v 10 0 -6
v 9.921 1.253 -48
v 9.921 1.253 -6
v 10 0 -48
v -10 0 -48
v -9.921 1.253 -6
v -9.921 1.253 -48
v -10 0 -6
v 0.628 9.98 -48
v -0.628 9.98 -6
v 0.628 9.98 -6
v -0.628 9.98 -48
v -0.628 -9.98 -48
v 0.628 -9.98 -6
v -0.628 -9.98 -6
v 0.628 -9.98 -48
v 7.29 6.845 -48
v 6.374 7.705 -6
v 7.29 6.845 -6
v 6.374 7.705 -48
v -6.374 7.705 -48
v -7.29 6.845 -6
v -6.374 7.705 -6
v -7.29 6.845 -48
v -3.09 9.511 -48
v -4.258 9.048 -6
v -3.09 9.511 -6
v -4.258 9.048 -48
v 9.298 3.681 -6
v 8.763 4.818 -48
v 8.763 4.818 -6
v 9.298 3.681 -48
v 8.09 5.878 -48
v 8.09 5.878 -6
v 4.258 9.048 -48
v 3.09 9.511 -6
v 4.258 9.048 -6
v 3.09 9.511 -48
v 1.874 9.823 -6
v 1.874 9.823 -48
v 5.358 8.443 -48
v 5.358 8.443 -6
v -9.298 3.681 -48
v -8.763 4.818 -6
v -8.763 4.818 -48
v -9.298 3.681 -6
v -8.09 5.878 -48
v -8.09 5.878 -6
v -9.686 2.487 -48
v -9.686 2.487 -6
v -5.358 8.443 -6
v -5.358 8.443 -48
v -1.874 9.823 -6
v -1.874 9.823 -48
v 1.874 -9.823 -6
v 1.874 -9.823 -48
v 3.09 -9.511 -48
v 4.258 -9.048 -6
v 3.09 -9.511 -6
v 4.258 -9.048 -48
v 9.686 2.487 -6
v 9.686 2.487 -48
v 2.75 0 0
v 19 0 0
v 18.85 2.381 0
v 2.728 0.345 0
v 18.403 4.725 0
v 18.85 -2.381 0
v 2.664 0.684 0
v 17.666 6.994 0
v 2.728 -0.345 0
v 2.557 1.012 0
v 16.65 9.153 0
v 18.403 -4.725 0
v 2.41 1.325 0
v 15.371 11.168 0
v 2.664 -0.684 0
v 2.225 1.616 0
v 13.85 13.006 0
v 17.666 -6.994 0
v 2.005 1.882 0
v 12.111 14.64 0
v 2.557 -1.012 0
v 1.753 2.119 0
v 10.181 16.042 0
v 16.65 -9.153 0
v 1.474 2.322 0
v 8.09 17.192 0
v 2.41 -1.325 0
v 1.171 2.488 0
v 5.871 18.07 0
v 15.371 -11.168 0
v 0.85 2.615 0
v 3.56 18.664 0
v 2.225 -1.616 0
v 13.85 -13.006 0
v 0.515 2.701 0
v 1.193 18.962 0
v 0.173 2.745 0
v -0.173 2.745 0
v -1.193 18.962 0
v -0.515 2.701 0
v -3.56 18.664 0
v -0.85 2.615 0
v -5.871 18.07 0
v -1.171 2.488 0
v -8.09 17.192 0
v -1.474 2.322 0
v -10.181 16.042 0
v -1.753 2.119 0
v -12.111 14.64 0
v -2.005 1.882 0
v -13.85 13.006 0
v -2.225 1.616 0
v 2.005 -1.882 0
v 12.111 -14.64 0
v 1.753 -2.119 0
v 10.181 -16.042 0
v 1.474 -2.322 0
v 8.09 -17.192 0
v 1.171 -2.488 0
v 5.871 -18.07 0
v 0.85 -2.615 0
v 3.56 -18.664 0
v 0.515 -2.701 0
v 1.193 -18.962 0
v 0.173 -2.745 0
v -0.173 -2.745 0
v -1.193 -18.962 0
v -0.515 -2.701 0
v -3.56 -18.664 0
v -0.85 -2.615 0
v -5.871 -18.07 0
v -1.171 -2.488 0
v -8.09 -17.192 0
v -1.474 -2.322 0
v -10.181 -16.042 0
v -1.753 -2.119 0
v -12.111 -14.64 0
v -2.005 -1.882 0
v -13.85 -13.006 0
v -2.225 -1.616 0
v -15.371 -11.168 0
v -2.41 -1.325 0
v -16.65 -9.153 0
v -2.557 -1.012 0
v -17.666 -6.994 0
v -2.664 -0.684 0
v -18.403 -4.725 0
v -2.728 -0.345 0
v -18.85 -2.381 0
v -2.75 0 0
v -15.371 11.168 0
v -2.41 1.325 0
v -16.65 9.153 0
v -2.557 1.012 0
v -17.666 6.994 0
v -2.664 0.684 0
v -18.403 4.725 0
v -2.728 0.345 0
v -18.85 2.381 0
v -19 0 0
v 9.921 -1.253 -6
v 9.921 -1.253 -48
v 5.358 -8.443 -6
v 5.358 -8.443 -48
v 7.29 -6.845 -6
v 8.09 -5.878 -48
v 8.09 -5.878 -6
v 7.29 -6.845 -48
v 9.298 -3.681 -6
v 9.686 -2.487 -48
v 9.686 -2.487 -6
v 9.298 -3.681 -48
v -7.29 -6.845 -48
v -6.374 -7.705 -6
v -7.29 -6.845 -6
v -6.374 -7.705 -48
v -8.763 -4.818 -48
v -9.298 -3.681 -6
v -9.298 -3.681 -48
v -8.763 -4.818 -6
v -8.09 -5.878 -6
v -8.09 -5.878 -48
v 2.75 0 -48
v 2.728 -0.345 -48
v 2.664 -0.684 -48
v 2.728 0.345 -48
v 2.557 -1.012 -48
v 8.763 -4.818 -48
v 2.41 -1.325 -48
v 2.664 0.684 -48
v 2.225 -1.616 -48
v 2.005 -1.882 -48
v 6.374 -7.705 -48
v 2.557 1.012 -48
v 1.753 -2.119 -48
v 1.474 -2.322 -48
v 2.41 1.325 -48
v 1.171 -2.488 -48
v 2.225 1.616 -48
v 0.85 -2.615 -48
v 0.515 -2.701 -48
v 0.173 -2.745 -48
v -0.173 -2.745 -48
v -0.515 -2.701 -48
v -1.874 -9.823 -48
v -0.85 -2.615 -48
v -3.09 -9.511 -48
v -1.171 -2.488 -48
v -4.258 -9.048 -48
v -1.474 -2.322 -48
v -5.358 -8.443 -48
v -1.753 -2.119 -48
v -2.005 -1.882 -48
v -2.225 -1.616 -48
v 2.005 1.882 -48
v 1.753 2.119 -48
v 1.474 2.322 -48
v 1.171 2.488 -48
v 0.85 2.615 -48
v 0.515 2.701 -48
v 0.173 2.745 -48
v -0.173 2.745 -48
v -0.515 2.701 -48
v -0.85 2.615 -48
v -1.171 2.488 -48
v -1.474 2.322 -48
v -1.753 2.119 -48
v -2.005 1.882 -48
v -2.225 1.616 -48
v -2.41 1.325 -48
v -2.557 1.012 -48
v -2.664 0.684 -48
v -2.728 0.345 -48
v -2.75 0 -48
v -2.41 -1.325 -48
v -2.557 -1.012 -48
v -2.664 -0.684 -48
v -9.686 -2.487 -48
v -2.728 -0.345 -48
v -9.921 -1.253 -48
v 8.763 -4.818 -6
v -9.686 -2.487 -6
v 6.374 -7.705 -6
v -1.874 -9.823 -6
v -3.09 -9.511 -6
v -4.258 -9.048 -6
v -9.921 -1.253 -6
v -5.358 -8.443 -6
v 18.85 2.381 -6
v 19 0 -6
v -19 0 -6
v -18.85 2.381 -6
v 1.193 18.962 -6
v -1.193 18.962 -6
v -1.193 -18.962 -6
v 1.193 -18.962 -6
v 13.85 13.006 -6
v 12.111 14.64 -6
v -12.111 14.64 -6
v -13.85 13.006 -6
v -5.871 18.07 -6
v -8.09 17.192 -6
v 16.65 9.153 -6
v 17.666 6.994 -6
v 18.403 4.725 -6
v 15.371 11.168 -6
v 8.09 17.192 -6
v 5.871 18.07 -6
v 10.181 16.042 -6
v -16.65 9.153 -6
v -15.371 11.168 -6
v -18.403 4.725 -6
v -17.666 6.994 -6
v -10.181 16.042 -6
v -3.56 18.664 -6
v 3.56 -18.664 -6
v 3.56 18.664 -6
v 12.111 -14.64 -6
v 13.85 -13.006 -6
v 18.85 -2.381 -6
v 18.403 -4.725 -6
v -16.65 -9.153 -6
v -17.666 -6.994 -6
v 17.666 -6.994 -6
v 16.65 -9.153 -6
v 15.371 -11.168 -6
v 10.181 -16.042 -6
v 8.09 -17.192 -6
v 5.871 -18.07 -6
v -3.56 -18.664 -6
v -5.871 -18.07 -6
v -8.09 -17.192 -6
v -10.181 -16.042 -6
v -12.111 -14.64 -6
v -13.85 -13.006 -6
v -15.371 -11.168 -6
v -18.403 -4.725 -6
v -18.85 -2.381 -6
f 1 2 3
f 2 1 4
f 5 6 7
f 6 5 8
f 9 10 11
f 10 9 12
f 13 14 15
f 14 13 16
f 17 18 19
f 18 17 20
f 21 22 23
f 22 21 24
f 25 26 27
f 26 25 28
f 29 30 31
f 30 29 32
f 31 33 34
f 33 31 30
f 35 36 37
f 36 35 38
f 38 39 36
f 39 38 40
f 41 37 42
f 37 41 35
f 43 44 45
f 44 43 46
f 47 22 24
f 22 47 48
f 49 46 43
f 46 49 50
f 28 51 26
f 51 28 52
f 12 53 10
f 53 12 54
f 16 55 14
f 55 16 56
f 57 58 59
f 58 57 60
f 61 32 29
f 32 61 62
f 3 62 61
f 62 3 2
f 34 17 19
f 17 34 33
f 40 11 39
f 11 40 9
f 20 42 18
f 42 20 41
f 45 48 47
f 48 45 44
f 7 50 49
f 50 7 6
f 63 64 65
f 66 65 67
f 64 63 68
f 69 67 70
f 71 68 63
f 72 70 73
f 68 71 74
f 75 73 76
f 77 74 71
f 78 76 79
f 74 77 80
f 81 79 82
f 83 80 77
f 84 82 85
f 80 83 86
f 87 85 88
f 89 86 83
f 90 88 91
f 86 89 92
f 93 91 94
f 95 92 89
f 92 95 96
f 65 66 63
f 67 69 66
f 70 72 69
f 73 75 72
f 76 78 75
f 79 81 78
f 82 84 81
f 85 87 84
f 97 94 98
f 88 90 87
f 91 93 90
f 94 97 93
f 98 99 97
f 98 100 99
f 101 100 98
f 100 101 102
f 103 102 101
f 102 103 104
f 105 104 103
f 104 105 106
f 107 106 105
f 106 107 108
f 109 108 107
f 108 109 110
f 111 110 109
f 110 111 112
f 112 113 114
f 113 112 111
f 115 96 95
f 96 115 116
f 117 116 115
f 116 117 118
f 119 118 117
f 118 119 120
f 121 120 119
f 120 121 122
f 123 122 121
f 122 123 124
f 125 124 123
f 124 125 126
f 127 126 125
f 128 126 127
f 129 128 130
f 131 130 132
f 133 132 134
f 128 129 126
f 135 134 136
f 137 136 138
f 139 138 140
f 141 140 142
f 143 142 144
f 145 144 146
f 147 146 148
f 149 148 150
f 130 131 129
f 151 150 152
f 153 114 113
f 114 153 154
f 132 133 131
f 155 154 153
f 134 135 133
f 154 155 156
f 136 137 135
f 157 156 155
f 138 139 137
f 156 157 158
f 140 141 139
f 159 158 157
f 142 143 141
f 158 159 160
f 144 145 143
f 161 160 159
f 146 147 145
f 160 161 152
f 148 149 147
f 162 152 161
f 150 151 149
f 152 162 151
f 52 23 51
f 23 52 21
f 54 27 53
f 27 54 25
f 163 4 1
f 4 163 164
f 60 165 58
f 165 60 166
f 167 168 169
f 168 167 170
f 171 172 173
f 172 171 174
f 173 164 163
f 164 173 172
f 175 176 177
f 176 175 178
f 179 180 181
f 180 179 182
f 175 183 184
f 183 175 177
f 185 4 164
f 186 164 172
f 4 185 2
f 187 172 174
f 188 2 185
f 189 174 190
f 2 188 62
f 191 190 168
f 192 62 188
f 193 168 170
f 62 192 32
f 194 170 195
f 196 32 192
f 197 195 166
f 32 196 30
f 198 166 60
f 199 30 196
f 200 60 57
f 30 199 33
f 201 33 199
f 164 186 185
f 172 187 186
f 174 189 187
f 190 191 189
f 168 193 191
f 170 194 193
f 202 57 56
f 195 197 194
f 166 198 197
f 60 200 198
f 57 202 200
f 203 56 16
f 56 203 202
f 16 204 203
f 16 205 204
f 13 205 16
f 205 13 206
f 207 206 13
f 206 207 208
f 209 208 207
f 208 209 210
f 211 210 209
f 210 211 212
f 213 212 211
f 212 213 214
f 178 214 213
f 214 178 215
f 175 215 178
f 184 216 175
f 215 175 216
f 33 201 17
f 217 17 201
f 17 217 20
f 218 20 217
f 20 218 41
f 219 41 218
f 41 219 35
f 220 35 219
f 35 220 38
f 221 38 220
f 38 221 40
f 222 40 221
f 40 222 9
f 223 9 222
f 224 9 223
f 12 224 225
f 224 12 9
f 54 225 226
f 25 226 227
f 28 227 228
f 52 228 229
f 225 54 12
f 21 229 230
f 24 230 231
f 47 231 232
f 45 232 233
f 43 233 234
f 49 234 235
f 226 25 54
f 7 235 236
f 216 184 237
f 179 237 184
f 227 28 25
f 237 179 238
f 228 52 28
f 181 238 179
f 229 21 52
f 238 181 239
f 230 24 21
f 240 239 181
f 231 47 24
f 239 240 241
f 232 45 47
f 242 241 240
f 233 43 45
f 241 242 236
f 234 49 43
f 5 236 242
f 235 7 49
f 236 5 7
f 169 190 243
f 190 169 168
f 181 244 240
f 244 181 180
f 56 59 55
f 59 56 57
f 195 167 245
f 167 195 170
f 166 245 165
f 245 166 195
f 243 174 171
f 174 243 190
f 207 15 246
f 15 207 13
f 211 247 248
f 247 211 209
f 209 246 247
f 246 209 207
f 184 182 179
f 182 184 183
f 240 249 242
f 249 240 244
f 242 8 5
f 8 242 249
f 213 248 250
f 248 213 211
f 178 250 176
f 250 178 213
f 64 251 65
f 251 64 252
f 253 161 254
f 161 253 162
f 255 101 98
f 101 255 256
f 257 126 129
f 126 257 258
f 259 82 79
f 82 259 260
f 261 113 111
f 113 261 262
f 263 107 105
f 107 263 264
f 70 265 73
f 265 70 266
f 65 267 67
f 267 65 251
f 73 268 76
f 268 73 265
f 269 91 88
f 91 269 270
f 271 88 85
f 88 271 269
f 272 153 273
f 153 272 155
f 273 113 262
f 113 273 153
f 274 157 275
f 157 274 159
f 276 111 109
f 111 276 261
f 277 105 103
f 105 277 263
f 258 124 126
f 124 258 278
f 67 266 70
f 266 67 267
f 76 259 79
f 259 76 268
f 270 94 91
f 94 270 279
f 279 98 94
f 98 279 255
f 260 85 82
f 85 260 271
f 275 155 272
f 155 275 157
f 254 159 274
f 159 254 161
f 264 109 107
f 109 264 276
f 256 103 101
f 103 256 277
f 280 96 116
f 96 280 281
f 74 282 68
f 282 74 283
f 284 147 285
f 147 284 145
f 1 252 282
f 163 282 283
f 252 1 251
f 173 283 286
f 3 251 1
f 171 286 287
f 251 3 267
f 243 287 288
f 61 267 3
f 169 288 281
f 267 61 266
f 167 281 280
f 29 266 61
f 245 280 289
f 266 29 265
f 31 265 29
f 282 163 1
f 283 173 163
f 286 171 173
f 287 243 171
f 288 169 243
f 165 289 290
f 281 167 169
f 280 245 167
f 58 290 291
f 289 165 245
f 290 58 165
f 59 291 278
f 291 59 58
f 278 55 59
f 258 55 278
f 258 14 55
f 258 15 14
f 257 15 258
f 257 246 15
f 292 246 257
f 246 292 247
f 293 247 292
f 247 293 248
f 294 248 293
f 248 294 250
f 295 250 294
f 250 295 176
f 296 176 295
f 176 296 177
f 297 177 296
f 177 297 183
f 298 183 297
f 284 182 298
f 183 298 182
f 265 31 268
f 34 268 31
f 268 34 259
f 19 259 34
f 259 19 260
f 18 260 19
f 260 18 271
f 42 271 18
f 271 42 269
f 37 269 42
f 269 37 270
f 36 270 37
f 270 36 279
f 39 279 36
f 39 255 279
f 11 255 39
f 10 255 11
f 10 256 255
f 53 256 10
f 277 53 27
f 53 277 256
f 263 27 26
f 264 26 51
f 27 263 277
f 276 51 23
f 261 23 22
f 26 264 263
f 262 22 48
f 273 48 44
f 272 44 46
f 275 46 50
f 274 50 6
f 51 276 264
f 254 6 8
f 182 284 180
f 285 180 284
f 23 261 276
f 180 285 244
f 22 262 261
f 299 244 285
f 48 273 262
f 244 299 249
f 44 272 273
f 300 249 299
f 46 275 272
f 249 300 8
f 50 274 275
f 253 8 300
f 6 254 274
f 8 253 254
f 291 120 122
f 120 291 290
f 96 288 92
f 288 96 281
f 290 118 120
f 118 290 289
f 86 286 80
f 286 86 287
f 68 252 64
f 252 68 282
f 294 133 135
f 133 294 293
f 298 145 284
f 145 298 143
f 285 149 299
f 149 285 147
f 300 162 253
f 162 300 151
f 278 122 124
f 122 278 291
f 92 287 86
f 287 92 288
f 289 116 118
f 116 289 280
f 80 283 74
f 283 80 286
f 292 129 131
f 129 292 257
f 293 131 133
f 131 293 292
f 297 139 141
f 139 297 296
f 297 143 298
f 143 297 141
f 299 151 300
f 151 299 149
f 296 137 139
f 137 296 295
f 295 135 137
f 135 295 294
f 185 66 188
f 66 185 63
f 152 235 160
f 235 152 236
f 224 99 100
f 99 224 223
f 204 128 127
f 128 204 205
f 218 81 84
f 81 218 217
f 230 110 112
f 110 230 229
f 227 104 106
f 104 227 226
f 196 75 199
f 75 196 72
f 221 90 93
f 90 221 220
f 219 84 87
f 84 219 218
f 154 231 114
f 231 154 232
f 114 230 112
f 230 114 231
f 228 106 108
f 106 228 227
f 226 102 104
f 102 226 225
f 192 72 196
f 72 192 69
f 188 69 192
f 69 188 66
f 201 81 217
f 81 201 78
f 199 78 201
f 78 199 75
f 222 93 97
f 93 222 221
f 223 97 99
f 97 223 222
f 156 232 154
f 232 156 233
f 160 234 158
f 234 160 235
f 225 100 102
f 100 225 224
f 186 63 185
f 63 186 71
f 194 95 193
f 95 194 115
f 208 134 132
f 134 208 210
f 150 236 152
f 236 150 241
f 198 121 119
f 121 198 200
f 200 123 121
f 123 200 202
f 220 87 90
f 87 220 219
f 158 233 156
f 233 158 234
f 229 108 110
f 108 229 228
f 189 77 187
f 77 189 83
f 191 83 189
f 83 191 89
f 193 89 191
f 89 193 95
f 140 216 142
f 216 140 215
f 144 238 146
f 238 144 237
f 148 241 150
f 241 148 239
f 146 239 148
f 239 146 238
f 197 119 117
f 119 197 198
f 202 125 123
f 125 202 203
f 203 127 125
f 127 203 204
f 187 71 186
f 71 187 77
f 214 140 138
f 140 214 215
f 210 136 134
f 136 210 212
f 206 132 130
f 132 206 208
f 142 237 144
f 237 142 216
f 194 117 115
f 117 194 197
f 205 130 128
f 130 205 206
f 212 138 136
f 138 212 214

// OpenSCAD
$fn = 50;


difference() {
	union() {
		translate(v = [0, 0, -48.0000000000]) {
			cylinder(h = 48, r = 10.0000000000);
		}
		translate(v = [0, 0, -6.0000000000]) {
			cylinder(h = 6, r = 19.0000000000);
		}
	}
	union() {
		#translate(v = [0, 0, -48]) {
			cylinder(h = 48, r = 2.7500000000);
		}
	}
}
